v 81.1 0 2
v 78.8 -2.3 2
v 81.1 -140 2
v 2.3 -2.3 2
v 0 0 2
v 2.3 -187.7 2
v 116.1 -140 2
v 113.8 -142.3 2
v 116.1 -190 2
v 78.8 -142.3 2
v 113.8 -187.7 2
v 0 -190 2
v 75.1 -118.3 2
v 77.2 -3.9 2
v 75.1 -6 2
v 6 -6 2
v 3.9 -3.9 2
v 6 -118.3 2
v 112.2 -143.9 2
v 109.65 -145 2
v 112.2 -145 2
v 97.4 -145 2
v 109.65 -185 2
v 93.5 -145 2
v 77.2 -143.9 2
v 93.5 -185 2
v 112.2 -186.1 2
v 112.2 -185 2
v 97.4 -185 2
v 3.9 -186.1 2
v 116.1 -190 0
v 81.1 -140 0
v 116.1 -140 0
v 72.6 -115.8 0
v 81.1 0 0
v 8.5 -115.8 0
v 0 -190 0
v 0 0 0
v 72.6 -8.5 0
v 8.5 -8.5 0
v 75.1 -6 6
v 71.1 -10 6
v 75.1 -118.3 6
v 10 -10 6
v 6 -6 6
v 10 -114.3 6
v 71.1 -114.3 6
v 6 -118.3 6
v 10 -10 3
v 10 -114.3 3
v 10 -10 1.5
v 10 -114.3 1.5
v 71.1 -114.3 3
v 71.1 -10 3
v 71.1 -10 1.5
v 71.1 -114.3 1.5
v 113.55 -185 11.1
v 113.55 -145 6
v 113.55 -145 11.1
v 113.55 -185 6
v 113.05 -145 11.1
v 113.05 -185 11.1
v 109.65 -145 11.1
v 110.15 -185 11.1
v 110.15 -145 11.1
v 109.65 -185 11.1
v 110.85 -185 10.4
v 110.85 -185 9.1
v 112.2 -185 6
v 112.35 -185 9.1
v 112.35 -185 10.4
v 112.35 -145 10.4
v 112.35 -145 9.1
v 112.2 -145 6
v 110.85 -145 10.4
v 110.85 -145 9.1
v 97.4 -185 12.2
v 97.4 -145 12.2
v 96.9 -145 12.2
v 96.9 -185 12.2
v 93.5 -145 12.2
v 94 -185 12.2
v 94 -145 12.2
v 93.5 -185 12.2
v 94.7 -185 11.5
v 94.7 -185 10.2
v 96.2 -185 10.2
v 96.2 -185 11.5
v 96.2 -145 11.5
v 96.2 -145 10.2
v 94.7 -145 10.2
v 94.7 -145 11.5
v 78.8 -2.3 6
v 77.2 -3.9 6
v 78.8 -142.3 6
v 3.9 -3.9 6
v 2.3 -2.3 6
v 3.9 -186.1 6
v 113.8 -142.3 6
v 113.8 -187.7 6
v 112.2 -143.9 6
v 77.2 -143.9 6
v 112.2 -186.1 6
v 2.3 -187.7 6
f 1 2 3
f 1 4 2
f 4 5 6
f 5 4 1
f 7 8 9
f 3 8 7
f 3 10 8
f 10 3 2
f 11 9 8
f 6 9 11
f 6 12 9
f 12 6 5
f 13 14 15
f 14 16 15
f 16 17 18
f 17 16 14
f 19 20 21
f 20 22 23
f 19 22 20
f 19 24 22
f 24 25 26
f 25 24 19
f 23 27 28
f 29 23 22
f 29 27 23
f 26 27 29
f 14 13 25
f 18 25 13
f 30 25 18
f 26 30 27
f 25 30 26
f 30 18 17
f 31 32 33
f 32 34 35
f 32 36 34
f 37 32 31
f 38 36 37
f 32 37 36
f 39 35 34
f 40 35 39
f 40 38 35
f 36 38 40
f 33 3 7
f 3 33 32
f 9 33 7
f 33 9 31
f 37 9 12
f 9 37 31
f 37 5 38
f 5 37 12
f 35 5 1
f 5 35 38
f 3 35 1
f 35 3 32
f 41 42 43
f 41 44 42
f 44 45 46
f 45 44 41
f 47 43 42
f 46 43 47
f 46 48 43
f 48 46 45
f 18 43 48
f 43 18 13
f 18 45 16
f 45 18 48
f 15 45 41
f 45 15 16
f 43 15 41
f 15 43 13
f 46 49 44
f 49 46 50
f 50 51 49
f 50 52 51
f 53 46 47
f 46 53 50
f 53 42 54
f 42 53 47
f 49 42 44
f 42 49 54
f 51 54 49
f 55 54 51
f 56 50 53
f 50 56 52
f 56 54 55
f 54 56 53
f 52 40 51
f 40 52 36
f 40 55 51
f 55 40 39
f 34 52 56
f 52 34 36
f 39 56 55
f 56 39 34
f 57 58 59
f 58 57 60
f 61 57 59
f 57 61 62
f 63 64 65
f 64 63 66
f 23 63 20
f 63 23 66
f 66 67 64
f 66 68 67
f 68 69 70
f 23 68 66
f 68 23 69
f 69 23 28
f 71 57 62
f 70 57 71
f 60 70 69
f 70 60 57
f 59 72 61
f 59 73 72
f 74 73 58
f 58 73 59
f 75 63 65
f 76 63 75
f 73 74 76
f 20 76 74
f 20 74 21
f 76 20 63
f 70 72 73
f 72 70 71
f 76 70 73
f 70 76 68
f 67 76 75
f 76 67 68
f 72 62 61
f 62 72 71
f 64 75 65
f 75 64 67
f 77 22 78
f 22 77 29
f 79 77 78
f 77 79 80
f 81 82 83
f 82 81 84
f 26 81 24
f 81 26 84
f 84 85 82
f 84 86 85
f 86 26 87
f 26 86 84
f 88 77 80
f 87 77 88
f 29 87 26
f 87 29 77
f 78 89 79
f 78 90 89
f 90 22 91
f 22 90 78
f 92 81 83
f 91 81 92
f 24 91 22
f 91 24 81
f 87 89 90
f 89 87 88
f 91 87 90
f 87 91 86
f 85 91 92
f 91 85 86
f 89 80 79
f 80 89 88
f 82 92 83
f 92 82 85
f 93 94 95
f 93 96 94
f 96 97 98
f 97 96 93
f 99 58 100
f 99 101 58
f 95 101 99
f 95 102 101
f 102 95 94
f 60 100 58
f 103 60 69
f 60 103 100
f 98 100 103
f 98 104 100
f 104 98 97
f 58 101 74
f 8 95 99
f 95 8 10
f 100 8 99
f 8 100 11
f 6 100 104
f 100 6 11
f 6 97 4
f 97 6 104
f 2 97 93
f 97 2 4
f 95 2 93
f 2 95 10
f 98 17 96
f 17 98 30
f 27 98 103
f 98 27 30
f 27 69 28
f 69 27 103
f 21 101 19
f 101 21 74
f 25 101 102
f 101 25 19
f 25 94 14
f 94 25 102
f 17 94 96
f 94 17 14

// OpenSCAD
// PlatypusOne — lid for EnclosurePrototypeTall (Fusion export, 116.1 x 190 x 33)
// Modelled in the enclosure's own coordinates (lid sits on the wall tops at
// z = 33), then flipped for printing. Flipping an L mirrors its footprint, so
// the print-orientation STL looks mirrored on the bed: that is correct.
//
// Shell numbers below were measured from the STL, not guessed:
//   outer L: x 0..116.1, y 0..190, notch x 81.1..116.1 / y 0..140; walls 2.
//   slots (bottom z = 2, run y 145..185):  ToF x 94.8..96.1, camera x 111.0..112.2
//   right-wall window y 142..180, z 4..24.
//   display tray: walls x 6..75.1 / y 6..118.3 to z 27; panel pocket
//   x 7.5..73.6 / y 7.5..116.8 sitting on a ledge at z 21.2.
//
// Render (print orientation): openscad -o enclosure_prototype_lid.stl enclosure_prototype_lid.scad
// Fit check against the shell: -D 'part="assembly"' -D 'shell="EnclosurePrototypeTall.stl"'

part  = "print";            // "print" | "assembly"
shell = "";                 // path to the enclosure STL for the assembly view

wall_top = 33;
lid_t    = 2.0;
lip_d    = 4.0;             // locating lip depth into the shell (stops at z 29, tray is 27)
lip_t    = 1.6;
fit      = 0.3;             // lip-to-wall clearance per side

// ---- boards standing in the floor slots ----
slot_bottom = 2.0;
slot_y      = [145, 185];
// [slot centre x, board height standing in the slot]
cam = [111.6, 24.0];        // B0394 nominal 25 x 24, 24 standing (FFC edge down)
tof = [95.45, 22.9];        // Pololu #3419 12.7 x 22.9, long side standing
groove_w  = 1.5;            // board 1.0 + clearance
groove_d  = 2.0;            // how far the clamp grips down each board face
clamp_t   = 1.2;            // clamp wall each side of the groove
preload   = 0.1;            // groove ceiling this much below the board top: light press

// ---- display ----
ledge_z     = 21.2;
panel_t     = 7.9;          // ledge to glass top. 4-DSI-TOUCH-A back is 7.9: CALIPER YOURS
pocket      = [[7.5, 7.5], [73.6, 116.8]];
tray        = [[6, 6], [75.1, 118.3]];
border      = 2.5;          // how much of the glass edge the frame covers, per side
win_chamfer = 1.5;          // bevel on the outside of the window

inner_L = [[2,2],[79.1,2],[79.1,142],[114.1,142],[114.1,188],[2,188]];
outer_L = [[0,0],[81.1,0],[81.1,140],[116.1,140],[116.1,190],[0,190]];

function win() = [pocket[0] + [border, border], pocket[1] - [border, border]];

module rect(r, grow = 0) translate(r[0] - [grow, grow]) square(r[1] - r[0] + [2*grow, 2*grow]);

module lid() {
    glass_top = ledge_z + panel_t - preload;
    difference() {
        union() {
            // plate
            translate([0,0,wall_top]) linear_extrude(lid_t) polygon(outer_L);
            // display frame: presses the glass border down onto the ledge
            translate([0,0,glass_top]) linear_extrude(wall_top - glass_top + 0.01)
                difference() { rect(tray); rect(win()); }
        }
        // display window through the plate, bevelled outward
        translate([0,0,wall_top - 1]) linear_extrude(lid_t + 2) rect(win());
        translate([0,0,wall_top + lid_t - win_chamfer]) hull() {
            linear_extrude(0.01) rect(win());
            translate([0,0,win_chamfer]) linear_extrude(0.01) rect(win(), win_chamfer);
        }
    }
    // locating lip, follows the inner wall all the way round
    translate([0,0,wall_top - lip_d]) linear_extrude(lip_d + 0.01)
        difference() {
            offset(delta = -fit) polygon(inner_L);
            offset(delta = -fit - lip_t) polygon(inner_L);
        }
    clamp(cam); clamp(tof);
}

// grooved rib that comes down onto the top edge of a board
module clamp(b) {
    x = b[0]; top = slot_bottom + b[1];
    ceil_z = top - preload;
    w = groove_w + 2 * clamp_t;
    difference() {
        translate([x - w/2, slot_y[0], ceil_z - groove_d]) cube([w, slot_y[1] - slot_y[0], wall_top - ceil_z + groove_d + 0.01]);
        translate([x - groove_w/2, slot_y[0] - 1, ceil_z - groove_d - 1]) cube([groove_w, slot_y[1] - slot_y[0] + 2, groove_d + 1]);
        // lead-in chamfer so the board edge finds the groove
        translate([x, slot_y[0] - 1, ceil_z - groove_d]) rotate([-90,0,0]) cylinder(d = groove_w + 1.4, h = slot_y[1] - slot_y[0] + 2, $fn = 4);
    }
}

if (part == "assembly") {
    if (shell != "") color("gray", 0.5) import(shell);
    color("orange") lid();
} else {
    // flip onto the plate: top face on the bed, lip and clamps up
    translate([0, 0, wall_top + lid_t]) rotate([180, 0, 0]) lid();
}
